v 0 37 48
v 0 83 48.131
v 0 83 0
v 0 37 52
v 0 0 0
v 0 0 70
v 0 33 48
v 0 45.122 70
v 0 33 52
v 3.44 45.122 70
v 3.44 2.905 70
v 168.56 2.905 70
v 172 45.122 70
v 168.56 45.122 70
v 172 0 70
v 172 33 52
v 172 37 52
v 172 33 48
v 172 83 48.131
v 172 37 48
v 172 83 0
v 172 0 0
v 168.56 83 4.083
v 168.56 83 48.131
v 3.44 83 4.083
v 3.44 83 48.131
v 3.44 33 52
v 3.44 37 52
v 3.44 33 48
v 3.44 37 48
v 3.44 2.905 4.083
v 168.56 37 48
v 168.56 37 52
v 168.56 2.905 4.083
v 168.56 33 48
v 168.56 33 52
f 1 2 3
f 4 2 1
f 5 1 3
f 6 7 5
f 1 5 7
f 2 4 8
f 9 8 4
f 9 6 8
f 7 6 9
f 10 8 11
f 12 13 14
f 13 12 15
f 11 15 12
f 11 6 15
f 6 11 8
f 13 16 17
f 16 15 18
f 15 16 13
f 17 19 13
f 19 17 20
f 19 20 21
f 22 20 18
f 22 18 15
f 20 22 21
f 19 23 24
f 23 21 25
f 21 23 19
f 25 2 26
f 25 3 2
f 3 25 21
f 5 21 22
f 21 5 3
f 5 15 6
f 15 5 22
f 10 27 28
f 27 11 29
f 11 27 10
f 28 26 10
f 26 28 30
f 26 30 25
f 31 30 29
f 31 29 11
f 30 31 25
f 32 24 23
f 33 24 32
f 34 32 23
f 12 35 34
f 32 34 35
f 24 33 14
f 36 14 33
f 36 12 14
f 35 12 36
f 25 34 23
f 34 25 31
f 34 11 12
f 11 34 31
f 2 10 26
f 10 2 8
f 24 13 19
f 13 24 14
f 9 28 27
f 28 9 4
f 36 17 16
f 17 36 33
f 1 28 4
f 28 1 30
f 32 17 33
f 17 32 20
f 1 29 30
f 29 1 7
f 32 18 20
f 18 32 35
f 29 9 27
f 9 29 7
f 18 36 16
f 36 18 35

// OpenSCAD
//Scoop for Dawg
//by jessicad2020
//v.3.0, 23 Mar 2019 

//parameters----------------------------------------------------------
boxw = 172;
boxl = 83;
boxh = 70;


//render--------------------------------------------------------------

shell();

translate([25,25,25]) {
   ball();     
}

translate([25,65,25]) {
    ball();
}

translate([65,25,25]) {
    ball();
}

translate([65,65,25]) {
    ball();
}

//modules-------------------------------------------------------------
module shell() {
    translate([boxw/2,boxl/2,boxh/2]) {
        difference() {
            box();
            translate([boxw/4, boxl, boxh]) {
                rotate([-30,0,0]) {
                    cube([boxw*2, boxl*2, boxh*2], center=true);
                }
            }    
            translate([0,-boxl/2+35,-boxh/2+50]) {
                cube([boxw*2,4,4], center=true); //axis
            }
            
        }          
    }
}

module box() {
    difference() {
        cube([boxw, boxl, boxh], center=true);
        translate([0,boxl*0.2,boxh*0.9/2.7]) {
            cube([boxw*0.96, boxl*1.33, boxh*1.55], center=true);
        }
    }
}

module ball() {
    %sphere(d=40);
}
